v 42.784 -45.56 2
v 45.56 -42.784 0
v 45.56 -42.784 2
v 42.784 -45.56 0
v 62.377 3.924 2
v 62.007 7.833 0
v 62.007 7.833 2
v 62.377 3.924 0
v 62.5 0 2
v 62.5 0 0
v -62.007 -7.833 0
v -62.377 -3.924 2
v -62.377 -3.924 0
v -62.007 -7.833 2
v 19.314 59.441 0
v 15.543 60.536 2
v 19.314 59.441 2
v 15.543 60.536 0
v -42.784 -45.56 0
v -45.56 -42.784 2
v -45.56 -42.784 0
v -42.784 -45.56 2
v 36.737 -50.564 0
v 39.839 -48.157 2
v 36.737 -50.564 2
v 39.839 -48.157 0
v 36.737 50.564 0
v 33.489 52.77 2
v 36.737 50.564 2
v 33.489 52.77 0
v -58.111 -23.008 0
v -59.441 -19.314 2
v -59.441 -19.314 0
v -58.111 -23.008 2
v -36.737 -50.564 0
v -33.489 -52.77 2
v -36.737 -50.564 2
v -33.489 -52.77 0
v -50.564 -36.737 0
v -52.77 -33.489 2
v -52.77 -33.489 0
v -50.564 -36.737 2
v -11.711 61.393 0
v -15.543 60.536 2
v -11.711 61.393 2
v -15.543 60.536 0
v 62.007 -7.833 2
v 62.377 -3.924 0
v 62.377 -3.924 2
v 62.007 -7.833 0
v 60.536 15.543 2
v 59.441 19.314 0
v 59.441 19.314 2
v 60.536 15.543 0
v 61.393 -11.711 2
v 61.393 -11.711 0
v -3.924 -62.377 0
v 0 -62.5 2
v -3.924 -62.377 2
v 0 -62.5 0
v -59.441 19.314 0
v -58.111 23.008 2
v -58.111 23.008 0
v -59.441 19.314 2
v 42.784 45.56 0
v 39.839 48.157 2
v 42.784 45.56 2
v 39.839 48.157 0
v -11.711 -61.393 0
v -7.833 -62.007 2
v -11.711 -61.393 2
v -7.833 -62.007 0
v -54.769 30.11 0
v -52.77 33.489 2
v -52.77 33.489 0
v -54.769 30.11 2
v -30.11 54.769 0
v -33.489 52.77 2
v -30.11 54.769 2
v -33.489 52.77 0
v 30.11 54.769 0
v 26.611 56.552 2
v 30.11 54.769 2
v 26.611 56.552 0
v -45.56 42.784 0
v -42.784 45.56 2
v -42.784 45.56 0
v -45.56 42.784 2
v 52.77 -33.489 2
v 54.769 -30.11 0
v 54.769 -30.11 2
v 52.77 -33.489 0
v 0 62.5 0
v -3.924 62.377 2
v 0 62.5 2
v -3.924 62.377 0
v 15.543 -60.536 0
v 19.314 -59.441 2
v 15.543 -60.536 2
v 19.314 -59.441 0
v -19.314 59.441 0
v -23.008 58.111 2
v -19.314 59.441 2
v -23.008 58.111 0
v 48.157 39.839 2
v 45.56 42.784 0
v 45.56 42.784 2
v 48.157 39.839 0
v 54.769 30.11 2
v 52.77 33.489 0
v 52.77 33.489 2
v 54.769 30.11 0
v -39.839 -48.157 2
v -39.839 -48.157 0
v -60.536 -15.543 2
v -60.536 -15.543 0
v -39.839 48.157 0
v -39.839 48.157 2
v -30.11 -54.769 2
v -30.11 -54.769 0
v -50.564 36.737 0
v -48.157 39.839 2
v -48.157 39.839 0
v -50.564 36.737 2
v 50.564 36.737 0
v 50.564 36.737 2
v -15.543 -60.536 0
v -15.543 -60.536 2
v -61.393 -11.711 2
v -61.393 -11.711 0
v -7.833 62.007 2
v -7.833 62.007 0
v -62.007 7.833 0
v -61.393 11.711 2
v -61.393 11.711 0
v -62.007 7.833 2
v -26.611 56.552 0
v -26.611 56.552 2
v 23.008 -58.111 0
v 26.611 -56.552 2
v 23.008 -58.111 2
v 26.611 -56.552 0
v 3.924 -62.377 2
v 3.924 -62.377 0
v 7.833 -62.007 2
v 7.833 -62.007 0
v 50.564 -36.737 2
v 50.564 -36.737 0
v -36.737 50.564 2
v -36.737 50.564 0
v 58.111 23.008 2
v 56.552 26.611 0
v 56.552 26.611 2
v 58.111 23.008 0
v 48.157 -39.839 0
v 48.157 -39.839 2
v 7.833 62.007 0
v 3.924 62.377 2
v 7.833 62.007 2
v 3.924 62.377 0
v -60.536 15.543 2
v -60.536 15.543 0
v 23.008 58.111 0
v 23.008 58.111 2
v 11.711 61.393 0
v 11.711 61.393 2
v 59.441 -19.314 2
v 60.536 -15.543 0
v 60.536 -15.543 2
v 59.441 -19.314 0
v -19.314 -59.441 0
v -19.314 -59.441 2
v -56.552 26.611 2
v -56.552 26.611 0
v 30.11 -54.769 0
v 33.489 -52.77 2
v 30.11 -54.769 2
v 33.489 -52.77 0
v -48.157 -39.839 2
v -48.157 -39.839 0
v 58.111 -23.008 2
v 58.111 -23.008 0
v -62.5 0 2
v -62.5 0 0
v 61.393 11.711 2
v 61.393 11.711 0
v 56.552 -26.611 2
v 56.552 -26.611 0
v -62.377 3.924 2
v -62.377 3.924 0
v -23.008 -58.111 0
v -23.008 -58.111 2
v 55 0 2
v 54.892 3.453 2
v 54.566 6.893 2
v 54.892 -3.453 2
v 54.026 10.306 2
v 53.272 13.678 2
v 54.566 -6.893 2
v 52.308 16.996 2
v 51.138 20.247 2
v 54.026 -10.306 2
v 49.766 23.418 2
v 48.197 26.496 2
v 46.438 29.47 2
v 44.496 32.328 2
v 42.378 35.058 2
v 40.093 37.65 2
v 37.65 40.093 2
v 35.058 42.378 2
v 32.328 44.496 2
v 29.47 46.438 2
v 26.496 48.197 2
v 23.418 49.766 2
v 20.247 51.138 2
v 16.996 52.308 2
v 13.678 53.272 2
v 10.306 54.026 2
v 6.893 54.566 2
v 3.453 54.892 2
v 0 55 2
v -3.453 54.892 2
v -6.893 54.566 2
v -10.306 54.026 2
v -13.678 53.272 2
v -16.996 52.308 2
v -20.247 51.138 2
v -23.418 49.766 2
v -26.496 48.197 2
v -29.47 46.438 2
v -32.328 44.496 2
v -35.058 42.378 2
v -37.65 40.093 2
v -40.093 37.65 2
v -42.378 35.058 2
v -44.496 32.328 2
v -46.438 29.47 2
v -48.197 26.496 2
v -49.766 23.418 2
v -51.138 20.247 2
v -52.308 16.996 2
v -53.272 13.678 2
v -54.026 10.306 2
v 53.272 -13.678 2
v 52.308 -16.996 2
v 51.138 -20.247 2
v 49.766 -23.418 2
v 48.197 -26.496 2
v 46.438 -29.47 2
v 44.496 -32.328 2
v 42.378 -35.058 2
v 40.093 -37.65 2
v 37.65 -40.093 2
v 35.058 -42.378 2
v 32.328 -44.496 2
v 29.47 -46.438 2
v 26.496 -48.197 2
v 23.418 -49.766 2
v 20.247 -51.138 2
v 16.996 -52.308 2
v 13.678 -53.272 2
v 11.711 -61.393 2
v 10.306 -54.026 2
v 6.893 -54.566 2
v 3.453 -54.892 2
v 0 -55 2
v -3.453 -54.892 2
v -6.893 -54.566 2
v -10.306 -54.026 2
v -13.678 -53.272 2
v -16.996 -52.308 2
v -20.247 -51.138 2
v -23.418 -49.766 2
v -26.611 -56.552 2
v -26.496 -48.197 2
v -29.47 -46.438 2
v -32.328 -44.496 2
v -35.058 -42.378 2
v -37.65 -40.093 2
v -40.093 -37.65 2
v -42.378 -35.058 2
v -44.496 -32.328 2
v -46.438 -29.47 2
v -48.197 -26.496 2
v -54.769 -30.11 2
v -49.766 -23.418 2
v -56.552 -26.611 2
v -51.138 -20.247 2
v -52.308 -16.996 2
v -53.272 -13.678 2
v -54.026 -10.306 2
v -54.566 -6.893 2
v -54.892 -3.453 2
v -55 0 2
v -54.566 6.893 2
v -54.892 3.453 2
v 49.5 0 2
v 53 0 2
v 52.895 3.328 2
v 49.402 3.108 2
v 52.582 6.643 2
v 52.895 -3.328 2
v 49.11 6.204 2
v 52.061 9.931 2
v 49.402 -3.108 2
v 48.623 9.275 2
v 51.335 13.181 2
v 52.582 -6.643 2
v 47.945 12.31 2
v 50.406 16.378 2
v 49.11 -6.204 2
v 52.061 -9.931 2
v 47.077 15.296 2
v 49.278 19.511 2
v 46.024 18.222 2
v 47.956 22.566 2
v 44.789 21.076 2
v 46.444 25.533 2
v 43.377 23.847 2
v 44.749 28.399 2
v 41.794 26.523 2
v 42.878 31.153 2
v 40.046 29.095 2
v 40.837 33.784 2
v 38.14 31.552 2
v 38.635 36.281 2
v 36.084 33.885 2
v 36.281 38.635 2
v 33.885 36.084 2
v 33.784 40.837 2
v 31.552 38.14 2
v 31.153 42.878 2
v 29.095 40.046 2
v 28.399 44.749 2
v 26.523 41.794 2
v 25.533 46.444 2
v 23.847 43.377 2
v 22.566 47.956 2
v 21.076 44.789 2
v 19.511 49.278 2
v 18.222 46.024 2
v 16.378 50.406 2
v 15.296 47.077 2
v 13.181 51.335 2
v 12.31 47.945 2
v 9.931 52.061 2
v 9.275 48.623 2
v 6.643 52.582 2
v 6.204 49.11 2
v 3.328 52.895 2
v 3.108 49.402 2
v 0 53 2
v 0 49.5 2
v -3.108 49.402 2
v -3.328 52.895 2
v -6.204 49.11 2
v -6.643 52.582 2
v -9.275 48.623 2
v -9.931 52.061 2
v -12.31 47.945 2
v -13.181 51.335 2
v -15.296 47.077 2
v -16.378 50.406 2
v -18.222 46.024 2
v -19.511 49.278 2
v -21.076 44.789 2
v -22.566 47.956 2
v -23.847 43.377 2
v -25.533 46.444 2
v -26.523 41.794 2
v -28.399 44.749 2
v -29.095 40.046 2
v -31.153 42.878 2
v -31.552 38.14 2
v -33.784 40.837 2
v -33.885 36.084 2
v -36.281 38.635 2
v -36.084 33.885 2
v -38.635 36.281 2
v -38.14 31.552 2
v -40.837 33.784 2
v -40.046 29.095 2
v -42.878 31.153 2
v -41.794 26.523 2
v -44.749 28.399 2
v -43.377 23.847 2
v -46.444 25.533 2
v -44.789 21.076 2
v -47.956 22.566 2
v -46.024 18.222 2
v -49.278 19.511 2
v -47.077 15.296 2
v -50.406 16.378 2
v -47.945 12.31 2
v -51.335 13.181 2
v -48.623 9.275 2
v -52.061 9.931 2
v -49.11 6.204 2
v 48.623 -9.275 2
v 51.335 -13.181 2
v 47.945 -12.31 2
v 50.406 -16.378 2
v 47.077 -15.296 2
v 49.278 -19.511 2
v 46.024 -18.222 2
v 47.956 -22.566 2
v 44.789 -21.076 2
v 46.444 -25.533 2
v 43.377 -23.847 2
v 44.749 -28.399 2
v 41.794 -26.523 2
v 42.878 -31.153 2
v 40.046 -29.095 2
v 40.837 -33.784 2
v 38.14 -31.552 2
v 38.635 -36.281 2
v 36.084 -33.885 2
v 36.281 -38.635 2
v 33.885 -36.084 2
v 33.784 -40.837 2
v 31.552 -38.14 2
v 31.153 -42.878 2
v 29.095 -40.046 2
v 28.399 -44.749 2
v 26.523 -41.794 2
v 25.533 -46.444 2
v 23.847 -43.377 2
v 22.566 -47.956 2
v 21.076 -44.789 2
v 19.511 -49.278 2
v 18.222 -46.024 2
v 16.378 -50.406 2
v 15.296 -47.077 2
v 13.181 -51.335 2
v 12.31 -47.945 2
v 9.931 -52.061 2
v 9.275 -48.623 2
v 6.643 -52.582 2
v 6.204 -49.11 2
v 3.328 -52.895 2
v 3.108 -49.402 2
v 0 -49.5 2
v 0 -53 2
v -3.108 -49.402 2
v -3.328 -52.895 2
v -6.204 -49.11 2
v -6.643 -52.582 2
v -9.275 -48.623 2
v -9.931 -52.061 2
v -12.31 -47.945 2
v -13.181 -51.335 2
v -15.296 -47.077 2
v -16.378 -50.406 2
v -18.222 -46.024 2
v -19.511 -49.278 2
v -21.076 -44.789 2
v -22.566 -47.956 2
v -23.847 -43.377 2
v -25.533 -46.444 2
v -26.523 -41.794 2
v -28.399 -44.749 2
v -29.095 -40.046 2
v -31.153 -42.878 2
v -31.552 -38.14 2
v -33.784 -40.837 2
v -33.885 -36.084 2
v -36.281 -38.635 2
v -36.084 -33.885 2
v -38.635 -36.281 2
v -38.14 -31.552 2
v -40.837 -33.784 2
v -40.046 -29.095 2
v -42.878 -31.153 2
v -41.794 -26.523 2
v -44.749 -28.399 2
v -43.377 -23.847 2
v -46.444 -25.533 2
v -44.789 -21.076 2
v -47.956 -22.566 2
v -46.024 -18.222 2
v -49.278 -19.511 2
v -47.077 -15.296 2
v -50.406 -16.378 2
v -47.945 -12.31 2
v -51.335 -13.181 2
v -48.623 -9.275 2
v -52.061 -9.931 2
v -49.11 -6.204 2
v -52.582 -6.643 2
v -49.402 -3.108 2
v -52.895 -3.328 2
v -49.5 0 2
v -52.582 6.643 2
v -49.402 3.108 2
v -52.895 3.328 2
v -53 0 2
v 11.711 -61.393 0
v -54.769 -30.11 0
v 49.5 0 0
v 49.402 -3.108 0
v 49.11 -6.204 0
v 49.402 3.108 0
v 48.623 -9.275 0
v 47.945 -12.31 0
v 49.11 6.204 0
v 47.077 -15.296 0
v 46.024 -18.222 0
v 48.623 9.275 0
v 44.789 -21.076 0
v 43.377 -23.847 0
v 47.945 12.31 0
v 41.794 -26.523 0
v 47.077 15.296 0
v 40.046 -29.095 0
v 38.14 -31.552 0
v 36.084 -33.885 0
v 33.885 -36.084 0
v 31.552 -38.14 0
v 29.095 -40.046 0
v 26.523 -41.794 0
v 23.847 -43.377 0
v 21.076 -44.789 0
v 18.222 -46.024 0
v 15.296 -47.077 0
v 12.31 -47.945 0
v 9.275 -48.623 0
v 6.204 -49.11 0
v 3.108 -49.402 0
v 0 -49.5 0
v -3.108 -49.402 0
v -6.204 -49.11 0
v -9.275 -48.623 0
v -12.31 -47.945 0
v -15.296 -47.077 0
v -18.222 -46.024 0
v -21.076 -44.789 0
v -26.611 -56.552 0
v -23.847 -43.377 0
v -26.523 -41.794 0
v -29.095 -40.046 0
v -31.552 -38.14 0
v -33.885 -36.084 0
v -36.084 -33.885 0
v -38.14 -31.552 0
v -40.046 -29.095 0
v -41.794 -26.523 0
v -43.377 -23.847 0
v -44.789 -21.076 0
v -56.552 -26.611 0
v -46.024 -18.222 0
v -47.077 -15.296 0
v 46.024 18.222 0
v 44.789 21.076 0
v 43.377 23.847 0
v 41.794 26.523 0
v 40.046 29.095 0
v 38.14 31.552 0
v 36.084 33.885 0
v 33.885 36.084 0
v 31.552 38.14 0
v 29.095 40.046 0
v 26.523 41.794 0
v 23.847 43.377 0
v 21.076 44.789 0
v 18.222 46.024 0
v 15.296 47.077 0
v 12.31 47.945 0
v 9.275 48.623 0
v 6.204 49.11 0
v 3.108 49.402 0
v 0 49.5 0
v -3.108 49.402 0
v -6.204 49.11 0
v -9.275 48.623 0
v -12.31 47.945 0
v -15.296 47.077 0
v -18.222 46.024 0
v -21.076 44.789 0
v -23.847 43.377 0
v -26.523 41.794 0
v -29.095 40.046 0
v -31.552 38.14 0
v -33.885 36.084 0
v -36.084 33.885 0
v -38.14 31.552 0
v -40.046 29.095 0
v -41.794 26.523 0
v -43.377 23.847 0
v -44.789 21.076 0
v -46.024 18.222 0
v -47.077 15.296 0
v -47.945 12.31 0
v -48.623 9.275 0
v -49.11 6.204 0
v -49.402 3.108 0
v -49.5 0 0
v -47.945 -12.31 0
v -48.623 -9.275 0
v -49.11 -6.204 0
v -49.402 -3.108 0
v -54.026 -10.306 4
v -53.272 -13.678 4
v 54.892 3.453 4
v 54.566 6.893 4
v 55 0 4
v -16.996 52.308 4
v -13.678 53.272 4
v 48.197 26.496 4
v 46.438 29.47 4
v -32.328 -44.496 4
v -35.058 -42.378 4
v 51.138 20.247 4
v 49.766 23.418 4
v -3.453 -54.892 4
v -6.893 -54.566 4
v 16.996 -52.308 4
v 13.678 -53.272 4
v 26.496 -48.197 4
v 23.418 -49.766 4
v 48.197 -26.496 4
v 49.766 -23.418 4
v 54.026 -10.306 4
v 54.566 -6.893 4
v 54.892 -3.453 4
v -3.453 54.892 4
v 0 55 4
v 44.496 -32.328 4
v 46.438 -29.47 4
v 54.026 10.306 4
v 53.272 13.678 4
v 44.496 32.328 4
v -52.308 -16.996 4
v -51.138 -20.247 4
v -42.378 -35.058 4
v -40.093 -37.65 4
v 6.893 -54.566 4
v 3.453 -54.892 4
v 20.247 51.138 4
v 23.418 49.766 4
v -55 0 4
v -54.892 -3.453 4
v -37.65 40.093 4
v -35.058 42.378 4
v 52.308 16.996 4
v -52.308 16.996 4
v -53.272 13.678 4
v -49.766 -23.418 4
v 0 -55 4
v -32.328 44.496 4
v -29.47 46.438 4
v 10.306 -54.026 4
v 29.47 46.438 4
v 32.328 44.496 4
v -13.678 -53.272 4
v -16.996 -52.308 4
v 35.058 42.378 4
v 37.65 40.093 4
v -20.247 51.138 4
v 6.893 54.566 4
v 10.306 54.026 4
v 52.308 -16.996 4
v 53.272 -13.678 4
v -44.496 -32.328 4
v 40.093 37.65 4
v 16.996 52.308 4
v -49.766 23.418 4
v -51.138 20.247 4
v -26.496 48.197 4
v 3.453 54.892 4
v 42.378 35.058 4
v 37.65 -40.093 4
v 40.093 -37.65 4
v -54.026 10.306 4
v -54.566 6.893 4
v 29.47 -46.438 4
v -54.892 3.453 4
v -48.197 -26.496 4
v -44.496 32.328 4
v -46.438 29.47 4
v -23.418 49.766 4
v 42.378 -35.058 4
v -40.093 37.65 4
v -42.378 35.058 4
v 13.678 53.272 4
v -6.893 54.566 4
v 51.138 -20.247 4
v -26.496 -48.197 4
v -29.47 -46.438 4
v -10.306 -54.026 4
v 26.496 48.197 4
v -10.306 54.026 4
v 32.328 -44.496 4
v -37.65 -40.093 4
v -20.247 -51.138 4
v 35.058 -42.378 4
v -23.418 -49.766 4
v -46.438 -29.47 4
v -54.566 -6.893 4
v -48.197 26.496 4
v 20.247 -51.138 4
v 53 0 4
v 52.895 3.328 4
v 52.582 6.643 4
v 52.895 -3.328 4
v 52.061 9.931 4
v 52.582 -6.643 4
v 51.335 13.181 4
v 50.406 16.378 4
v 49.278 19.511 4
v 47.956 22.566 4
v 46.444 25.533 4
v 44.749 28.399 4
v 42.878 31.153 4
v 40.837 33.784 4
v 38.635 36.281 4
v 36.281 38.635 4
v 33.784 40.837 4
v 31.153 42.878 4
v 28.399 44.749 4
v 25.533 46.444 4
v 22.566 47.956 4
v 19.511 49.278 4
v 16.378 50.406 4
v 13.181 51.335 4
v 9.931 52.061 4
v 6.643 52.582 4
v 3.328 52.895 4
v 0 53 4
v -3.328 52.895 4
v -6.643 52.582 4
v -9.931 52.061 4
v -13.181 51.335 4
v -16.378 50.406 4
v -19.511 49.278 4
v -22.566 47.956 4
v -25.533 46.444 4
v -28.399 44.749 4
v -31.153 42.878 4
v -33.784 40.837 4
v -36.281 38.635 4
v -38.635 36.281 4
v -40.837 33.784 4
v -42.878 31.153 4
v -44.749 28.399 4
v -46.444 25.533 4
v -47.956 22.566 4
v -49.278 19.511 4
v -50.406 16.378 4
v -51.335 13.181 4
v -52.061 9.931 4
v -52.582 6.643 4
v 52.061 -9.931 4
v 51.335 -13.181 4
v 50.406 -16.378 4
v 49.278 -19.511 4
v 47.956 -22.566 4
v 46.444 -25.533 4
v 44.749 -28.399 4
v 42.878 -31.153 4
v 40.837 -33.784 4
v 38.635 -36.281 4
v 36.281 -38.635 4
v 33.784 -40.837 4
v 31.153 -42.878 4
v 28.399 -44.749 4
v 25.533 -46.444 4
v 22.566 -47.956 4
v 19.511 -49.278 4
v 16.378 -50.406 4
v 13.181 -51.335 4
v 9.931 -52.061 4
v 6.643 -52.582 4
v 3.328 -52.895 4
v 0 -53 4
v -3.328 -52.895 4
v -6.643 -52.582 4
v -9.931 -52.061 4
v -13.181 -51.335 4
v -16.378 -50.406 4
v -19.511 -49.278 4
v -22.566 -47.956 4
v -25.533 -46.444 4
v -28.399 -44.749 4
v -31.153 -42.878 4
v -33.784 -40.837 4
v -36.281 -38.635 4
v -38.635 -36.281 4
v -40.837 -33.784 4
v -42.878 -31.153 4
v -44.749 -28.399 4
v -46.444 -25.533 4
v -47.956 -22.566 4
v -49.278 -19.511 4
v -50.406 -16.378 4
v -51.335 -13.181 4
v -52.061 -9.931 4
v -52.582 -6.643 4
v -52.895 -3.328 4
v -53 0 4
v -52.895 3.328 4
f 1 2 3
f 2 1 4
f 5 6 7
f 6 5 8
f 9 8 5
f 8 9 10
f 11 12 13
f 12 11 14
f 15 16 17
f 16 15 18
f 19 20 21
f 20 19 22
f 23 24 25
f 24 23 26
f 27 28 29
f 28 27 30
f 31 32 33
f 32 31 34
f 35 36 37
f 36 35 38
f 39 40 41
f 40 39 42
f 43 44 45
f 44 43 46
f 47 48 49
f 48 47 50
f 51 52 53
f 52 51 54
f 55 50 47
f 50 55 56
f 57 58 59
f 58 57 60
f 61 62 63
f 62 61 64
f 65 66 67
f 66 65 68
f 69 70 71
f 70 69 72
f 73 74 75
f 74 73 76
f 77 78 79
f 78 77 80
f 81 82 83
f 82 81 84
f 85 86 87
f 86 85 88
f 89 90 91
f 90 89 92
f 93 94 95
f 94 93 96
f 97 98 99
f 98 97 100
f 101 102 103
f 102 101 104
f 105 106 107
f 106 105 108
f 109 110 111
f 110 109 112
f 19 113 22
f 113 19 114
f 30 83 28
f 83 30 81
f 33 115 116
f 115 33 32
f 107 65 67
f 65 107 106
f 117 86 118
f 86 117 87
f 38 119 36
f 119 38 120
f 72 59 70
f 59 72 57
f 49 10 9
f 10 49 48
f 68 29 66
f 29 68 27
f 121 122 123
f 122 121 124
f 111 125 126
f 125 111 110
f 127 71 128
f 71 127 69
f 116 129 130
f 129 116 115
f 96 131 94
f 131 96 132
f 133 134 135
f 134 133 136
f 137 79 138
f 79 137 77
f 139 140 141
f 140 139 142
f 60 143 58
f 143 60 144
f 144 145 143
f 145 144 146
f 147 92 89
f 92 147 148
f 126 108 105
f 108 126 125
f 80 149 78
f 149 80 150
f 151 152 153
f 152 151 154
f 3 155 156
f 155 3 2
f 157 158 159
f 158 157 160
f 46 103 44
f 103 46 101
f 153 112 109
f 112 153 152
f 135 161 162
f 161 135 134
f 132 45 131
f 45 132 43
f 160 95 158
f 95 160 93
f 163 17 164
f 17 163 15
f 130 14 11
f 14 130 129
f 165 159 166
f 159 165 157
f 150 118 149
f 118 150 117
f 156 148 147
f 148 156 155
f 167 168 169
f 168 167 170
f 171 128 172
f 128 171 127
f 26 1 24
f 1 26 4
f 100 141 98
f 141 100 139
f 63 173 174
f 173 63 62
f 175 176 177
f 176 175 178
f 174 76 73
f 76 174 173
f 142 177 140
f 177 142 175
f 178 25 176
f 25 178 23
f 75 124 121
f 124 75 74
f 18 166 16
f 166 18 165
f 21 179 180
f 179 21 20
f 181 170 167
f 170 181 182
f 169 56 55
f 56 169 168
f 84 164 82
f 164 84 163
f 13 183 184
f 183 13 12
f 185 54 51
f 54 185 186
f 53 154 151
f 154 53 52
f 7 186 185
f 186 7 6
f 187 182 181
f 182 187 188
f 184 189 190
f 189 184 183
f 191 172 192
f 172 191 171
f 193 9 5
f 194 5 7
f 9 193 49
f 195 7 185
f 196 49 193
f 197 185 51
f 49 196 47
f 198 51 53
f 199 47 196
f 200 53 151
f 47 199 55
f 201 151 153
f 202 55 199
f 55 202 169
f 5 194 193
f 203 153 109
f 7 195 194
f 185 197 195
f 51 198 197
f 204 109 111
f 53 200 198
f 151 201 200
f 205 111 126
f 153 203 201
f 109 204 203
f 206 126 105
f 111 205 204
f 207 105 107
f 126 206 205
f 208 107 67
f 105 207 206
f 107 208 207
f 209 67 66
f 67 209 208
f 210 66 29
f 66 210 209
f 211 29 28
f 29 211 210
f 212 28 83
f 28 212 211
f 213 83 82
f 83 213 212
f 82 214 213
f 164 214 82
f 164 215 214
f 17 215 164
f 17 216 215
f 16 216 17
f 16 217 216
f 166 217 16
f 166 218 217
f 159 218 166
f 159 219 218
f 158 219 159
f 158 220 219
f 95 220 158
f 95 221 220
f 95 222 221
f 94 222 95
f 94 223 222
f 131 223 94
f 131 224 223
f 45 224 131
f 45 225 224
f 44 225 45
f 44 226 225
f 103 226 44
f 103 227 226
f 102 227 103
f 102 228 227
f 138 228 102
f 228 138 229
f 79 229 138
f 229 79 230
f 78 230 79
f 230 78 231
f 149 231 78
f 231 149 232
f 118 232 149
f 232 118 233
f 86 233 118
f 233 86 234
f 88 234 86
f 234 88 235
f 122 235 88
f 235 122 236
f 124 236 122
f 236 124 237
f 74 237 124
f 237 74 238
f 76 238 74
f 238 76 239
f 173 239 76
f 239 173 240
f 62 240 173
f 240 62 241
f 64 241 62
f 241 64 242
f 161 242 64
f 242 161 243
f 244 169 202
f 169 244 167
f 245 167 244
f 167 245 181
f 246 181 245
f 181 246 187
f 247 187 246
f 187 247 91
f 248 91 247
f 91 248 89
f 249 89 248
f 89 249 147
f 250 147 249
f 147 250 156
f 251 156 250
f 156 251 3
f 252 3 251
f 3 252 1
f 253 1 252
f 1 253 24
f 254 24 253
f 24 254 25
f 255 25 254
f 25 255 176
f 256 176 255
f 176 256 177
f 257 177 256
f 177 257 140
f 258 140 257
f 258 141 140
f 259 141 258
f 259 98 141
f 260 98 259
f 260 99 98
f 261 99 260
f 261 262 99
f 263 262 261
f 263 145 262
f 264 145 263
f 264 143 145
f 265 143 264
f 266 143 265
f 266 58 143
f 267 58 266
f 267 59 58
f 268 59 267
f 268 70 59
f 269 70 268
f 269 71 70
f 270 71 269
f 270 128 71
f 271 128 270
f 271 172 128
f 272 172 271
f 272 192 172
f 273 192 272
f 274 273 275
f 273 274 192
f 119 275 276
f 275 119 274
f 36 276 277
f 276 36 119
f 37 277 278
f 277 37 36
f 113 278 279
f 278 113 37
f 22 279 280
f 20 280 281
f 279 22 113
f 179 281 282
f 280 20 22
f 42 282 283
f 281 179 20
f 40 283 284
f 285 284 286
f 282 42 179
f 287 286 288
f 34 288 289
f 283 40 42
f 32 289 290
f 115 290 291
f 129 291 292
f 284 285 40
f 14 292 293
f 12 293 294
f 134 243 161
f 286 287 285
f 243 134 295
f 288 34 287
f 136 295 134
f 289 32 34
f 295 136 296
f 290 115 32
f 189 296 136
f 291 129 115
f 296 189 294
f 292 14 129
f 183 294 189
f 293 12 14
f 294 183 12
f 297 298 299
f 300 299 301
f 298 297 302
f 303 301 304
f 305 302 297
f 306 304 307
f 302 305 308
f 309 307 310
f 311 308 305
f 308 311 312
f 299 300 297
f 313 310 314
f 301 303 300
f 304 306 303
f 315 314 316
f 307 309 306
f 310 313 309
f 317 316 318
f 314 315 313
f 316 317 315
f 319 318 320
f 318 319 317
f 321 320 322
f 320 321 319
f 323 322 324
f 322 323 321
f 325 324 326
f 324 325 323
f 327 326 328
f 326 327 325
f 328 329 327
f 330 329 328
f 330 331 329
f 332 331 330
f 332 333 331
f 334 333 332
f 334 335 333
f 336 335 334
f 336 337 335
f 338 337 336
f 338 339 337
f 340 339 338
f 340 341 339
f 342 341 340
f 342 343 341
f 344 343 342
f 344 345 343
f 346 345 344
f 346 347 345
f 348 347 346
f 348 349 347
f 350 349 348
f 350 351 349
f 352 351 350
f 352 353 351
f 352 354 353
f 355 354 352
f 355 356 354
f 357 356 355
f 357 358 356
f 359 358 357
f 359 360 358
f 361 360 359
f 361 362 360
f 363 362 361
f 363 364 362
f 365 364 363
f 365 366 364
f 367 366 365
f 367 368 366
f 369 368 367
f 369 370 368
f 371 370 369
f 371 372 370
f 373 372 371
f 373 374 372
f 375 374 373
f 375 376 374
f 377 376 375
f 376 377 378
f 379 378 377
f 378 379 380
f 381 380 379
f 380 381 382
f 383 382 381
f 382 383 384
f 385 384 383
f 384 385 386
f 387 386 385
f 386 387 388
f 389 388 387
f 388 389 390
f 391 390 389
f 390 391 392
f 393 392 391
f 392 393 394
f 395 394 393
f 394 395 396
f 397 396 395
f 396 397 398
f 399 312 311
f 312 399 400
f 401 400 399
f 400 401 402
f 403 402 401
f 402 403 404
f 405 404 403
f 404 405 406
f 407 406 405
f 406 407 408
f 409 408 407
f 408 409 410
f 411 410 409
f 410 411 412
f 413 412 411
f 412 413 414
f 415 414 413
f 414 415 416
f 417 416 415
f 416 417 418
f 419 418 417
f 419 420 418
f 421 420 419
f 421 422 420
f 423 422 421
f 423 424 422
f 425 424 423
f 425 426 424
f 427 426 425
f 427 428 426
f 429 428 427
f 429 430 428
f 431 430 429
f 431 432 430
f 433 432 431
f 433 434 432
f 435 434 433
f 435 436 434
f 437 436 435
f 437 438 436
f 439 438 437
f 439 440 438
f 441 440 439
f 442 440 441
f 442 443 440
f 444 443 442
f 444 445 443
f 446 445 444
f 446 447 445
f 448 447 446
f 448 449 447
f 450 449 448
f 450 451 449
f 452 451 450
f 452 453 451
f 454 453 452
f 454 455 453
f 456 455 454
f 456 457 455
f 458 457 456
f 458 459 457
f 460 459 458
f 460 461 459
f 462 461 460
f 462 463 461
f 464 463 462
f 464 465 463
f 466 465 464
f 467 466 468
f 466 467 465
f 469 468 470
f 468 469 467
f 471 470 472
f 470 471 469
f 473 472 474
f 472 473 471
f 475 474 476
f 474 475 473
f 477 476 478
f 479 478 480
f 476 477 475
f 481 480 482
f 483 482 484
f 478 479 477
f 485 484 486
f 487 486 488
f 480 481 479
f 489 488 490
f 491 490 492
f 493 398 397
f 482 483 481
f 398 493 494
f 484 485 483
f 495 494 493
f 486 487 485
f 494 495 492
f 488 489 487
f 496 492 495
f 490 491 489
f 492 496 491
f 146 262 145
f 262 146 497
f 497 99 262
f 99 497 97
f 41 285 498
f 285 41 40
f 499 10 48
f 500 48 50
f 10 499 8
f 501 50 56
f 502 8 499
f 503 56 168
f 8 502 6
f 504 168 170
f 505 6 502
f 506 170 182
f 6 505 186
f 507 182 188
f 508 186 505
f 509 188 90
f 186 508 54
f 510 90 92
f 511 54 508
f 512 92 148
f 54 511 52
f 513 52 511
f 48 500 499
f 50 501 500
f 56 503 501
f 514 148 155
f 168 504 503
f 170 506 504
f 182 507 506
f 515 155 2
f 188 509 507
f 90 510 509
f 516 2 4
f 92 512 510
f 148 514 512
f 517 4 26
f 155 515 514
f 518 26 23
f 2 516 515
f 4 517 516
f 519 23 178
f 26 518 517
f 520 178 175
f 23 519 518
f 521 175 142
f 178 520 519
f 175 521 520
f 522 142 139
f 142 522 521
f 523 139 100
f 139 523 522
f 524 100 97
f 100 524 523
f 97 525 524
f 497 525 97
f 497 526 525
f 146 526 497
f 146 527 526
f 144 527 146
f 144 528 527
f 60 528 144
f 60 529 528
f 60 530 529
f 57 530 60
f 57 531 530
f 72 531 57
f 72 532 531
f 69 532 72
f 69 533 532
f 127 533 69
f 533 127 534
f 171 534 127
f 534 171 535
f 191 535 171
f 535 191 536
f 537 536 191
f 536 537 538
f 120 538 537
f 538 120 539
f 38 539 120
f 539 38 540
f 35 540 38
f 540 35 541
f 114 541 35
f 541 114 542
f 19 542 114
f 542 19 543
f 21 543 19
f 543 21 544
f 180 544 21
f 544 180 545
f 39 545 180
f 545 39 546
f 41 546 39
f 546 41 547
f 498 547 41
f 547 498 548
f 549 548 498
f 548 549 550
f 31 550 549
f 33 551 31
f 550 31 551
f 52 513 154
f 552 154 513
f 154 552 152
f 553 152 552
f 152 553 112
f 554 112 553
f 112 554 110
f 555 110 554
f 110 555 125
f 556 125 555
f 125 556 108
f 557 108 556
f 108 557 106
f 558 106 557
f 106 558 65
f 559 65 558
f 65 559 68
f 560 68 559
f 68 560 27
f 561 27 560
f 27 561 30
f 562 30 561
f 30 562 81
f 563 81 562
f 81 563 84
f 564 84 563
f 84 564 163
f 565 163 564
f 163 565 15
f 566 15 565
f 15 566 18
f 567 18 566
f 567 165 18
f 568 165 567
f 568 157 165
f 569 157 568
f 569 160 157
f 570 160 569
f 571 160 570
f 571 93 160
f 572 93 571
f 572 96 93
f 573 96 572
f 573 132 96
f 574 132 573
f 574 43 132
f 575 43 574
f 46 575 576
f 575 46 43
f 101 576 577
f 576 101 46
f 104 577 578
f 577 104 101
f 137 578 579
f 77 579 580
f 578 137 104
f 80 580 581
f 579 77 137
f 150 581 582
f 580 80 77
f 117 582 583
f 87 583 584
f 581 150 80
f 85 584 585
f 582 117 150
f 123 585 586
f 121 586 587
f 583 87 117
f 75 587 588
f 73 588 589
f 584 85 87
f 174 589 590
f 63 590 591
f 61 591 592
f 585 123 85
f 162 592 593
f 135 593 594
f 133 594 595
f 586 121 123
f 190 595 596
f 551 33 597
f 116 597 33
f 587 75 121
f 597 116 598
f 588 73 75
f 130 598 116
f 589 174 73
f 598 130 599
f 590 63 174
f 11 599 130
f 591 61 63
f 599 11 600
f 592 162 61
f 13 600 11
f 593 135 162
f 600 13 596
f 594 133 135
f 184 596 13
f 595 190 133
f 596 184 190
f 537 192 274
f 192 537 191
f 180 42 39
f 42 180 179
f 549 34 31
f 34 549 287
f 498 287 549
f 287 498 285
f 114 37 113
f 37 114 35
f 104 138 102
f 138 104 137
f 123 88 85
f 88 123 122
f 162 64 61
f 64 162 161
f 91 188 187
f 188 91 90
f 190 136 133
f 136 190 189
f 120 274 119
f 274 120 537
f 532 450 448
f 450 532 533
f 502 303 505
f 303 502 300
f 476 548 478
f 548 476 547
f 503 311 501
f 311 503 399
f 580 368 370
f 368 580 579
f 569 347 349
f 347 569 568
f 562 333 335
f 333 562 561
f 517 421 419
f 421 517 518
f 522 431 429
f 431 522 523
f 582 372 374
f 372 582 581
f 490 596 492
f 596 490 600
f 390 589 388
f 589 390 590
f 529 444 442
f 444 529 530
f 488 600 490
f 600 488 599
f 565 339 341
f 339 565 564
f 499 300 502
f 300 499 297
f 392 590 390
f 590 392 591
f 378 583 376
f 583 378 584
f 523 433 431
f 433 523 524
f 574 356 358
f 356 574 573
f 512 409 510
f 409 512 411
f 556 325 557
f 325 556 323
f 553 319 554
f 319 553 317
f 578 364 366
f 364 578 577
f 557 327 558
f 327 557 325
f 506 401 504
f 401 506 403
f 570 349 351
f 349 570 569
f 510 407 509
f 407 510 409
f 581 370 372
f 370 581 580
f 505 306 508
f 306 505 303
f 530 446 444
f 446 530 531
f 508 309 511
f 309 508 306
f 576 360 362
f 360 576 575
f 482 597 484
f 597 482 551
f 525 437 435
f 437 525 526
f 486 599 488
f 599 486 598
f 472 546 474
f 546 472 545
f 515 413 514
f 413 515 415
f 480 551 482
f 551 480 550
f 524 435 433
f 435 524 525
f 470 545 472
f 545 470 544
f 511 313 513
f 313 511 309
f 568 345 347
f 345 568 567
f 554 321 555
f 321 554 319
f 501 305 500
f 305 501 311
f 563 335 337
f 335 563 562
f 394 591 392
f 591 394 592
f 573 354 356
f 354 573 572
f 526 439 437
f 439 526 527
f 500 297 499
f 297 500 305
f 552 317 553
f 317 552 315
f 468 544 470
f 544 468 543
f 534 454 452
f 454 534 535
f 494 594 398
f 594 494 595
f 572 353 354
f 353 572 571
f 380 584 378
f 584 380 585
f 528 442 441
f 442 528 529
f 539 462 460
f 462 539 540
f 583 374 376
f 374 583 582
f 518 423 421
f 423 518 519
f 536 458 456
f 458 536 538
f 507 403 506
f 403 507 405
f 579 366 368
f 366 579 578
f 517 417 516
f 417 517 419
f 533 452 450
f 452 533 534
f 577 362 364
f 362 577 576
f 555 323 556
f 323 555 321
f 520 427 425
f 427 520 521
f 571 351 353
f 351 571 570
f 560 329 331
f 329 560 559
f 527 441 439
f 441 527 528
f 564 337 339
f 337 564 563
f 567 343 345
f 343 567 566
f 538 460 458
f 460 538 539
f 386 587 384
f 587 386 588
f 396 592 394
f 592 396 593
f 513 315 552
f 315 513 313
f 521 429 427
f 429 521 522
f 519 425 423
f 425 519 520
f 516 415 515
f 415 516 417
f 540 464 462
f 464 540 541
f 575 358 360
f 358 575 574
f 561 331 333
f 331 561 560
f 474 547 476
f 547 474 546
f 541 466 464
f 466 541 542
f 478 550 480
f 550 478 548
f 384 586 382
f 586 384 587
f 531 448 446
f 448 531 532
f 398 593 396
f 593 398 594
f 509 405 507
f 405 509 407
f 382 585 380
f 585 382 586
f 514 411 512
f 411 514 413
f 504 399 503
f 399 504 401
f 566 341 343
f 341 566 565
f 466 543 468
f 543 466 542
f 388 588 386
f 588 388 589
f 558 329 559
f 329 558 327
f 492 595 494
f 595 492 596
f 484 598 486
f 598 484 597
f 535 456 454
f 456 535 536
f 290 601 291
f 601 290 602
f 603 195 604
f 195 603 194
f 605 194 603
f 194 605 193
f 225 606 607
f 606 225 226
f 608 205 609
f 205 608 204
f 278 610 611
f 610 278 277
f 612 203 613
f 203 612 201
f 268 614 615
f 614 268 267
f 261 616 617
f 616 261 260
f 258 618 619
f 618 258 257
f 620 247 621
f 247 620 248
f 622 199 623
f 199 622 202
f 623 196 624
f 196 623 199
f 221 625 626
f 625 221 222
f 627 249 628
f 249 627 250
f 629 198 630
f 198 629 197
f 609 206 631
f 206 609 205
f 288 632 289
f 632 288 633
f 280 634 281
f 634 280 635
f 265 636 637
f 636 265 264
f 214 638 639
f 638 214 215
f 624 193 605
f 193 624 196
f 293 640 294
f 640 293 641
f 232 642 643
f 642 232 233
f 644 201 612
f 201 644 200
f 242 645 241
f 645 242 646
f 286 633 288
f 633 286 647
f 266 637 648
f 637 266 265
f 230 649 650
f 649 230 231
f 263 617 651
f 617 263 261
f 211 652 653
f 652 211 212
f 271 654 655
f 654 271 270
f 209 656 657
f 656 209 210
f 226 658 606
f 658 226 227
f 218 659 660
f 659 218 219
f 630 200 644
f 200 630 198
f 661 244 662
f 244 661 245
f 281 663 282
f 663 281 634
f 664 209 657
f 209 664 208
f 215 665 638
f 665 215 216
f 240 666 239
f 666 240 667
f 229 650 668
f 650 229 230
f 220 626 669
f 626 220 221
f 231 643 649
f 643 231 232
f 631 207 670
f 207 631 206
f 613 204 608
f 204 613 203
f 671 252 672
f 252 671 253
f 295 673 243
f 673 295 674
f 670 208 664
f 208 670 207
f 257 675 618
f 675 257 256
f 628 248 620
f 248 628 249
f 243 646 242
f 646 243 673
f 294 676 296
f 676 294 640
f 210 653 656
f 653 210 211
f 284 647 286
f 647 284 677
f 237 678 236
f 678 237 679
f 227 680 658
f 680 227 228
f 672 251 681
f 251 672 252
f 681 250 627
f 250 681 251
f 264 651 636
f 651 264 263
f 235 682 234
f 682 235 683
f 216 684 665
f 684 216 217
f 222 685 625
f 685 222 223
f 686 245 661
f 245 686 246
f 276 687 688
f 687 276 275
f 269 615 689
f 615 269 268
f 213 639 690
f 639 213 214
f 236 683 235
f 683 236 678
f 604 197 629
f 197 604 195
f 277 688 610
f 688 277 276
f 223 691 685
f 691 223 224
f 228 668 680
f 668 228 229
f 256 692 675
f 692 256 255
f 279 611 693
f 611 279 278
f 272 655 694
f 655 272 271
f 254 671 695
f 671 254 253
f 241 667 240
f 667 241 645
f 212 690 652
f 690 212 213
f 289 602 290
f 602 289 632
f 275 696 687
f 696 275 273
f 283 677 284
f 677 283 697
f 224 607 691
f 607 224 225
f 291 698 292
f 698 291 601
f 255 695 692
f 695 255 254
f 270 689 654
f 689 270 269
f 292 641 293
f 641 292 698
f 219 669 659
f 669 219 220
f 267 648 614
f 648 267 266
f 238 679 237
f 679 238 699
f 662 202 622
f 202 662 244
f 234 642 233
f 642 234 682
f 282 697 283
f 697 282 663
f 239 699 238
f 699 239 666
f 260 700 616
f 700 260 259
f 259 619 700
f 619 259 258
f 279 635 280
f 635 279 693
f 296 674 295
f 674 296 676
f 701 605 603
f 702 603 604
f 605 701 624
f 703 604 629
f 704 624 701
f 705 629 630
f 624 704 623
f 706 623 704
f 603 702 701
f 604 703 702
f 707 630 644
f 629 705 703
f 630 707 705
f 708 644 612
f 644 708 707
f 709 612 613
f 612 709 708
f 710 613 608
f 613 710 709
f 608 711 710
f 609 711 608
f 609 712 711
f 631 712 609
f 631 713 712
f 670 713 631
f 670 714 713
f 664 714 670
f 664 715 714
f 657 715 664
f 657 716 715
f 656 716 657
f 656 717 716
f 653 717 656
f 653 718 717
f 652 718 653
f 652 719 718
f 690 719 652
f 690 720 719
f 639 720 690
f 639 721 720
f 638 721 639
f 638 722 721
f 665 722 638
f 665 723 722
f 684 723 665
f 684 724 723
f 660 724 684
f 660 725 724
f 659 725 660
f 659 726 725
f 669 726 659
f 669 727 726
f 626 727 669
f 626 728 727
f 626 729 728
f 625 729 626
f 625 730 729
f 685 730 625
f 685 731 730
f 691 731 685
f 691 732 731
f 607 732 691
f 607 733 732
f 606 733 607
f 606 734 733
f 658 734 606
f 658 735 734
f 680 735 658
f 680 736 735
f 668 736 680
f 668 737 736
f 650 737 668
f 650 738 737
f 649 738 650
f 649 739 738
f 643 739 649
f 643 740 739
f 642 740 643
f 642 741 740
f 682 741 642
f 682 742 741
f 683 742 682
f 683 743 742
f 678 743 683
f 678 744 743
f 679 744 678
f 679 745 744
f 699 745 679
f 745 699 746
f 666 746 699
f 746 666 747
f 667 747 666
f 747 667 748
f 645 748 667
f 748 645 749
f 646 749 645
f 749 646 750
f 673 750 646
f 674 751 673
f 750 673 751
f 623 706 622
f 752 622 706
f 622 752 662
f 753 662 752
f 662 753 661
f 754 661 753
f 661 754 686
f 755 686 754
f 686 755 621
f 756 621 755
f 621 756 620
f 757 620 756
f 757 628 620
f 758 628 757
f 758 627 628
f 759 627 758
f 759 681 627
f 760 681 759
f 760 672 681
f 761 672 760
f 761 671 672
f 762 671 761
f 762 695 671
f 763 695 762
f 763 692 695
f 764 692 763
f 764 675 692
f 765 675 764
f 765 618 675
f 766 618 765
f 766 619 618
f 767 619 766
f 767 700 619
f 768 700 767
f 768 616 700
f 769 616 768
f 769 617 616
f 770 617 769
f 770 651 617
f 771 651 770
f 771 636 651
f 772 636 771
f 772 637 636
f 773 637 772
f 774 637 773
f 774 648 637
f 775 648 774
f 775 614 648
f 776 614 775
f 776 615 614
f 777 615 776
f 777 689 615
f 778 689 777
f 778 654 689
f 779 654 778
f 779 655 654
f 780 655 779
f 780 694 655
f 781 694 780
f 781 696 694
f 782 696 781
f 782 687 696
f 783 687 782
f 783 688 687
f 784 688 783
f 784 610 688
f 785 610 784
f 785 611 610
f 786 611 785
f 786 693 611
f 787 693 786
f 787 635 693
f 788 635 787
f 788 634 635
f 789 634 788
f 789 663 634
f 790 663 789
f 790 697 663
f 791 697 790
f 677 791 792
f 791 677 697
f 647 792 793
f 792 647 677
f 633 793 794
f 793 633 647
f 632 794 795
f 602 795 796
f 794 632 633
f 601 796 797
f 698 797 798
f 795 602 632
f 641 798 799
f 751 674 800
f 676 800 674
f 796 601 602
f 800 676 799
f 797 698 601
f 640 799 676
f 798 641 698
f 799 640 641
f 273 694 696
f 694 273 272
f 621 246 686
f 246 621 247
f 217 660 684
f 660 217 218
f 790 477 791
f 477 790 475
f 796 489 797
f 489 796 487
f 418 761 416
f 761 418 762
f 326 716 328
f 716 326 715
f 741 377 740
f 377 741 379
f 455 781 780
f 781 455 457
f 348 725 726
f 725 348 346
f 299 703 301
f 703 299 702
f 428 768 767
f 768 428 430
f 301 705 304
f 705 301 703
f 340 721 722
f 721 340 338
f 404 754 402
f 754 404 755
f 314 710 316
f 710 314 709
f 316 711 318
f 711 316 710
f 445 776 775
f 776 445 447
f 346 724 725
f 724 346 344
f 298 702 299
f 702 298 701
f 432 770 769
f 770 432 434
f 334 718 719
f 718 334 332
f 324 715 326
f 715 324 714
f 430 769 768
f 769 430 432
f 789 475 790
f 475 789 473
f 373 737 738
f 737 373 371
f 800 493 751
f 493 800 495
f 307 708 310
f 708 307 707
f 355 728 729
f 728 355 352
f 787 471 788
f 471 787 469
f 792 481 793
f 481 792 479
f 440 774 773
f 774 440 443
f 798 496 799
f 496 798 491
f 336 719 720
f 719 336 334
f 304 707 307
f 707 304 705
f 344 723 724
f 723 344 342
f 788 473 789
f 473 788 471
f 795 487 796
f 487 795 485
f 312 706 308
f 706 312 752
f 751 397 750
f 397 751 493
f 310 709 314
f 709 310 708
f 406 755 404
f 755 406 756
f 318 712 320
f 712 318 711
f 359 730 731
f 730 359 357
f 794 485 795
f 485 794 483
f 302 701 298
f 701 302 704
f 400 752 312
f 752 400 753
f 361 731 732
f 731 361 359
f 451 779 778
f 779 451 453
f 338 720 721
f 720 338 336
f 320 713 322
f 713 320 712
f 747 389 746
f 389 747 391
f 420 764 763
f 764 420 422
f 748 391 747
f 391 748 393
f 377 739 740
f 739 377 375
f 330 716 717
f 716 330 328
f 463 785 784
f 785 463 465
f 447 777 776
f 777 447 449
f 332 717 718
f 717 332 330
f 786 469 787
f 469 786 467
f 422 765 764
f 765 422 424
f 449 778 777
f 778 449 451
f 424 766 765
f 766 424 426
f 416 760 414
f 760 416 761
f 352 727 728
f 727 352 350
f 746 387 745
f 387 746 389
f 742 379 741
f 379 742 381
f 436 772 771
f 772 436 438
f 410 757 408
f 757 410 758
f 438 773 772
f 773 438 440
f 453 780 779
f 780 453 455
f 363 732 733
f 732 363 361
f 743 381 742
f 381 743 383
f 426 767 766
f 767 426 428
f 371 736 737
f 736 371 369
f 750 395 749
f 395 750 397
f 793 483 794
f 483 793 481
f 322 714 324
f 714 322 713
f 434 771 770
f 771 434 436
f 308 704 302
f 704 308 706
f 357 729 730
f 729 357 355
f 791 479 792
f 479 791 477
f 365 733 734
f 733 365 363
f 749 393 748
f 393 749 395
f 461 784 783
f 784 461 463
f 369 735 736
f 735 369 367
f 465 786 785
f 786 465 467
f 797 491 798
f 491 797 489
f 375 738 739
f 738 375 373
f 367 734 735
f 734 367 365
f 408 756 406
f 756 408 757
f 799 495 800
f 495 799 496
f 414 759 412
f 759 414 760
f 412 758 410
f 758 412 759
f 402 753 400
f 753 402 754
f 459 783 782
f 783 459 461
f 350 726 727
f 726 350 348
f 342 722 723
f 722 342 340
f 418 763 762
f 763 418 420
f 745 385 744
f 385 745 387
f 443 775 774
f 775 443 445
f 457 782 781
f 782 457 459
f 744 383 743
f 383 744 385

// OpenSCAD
//for LED lamps in ceiling in Howth
// the originals are wider and therefore the new ones need a spacer to cover the hole
//colour is white
//led lamps are 105mm Diameter (4 lamps)

lampD=105;
lampH=2;
holeD=99;
coverD=125;
coverInD=99;
coverH=2;
coverRidgeW=5;
$fn=100;

//lamp
*color("white")
	translate([0,0,coverH])
		cylinder(h=2,d=lampD);

color("white") union(){
	difference(){
		cylinder(h=coverH,d=coverD);
		translate([0,0,-.1]) cylinder(h=coverH+.2,d=coverInD);
	}
	translate([0,0,coverH])
	difference(){
		cylinder(h=lampH,d=lampD+coverRidgeW);
		translate([0,0,-.1]) cylinder(h=lampH+.2,d=lampD+1);
	}
}
